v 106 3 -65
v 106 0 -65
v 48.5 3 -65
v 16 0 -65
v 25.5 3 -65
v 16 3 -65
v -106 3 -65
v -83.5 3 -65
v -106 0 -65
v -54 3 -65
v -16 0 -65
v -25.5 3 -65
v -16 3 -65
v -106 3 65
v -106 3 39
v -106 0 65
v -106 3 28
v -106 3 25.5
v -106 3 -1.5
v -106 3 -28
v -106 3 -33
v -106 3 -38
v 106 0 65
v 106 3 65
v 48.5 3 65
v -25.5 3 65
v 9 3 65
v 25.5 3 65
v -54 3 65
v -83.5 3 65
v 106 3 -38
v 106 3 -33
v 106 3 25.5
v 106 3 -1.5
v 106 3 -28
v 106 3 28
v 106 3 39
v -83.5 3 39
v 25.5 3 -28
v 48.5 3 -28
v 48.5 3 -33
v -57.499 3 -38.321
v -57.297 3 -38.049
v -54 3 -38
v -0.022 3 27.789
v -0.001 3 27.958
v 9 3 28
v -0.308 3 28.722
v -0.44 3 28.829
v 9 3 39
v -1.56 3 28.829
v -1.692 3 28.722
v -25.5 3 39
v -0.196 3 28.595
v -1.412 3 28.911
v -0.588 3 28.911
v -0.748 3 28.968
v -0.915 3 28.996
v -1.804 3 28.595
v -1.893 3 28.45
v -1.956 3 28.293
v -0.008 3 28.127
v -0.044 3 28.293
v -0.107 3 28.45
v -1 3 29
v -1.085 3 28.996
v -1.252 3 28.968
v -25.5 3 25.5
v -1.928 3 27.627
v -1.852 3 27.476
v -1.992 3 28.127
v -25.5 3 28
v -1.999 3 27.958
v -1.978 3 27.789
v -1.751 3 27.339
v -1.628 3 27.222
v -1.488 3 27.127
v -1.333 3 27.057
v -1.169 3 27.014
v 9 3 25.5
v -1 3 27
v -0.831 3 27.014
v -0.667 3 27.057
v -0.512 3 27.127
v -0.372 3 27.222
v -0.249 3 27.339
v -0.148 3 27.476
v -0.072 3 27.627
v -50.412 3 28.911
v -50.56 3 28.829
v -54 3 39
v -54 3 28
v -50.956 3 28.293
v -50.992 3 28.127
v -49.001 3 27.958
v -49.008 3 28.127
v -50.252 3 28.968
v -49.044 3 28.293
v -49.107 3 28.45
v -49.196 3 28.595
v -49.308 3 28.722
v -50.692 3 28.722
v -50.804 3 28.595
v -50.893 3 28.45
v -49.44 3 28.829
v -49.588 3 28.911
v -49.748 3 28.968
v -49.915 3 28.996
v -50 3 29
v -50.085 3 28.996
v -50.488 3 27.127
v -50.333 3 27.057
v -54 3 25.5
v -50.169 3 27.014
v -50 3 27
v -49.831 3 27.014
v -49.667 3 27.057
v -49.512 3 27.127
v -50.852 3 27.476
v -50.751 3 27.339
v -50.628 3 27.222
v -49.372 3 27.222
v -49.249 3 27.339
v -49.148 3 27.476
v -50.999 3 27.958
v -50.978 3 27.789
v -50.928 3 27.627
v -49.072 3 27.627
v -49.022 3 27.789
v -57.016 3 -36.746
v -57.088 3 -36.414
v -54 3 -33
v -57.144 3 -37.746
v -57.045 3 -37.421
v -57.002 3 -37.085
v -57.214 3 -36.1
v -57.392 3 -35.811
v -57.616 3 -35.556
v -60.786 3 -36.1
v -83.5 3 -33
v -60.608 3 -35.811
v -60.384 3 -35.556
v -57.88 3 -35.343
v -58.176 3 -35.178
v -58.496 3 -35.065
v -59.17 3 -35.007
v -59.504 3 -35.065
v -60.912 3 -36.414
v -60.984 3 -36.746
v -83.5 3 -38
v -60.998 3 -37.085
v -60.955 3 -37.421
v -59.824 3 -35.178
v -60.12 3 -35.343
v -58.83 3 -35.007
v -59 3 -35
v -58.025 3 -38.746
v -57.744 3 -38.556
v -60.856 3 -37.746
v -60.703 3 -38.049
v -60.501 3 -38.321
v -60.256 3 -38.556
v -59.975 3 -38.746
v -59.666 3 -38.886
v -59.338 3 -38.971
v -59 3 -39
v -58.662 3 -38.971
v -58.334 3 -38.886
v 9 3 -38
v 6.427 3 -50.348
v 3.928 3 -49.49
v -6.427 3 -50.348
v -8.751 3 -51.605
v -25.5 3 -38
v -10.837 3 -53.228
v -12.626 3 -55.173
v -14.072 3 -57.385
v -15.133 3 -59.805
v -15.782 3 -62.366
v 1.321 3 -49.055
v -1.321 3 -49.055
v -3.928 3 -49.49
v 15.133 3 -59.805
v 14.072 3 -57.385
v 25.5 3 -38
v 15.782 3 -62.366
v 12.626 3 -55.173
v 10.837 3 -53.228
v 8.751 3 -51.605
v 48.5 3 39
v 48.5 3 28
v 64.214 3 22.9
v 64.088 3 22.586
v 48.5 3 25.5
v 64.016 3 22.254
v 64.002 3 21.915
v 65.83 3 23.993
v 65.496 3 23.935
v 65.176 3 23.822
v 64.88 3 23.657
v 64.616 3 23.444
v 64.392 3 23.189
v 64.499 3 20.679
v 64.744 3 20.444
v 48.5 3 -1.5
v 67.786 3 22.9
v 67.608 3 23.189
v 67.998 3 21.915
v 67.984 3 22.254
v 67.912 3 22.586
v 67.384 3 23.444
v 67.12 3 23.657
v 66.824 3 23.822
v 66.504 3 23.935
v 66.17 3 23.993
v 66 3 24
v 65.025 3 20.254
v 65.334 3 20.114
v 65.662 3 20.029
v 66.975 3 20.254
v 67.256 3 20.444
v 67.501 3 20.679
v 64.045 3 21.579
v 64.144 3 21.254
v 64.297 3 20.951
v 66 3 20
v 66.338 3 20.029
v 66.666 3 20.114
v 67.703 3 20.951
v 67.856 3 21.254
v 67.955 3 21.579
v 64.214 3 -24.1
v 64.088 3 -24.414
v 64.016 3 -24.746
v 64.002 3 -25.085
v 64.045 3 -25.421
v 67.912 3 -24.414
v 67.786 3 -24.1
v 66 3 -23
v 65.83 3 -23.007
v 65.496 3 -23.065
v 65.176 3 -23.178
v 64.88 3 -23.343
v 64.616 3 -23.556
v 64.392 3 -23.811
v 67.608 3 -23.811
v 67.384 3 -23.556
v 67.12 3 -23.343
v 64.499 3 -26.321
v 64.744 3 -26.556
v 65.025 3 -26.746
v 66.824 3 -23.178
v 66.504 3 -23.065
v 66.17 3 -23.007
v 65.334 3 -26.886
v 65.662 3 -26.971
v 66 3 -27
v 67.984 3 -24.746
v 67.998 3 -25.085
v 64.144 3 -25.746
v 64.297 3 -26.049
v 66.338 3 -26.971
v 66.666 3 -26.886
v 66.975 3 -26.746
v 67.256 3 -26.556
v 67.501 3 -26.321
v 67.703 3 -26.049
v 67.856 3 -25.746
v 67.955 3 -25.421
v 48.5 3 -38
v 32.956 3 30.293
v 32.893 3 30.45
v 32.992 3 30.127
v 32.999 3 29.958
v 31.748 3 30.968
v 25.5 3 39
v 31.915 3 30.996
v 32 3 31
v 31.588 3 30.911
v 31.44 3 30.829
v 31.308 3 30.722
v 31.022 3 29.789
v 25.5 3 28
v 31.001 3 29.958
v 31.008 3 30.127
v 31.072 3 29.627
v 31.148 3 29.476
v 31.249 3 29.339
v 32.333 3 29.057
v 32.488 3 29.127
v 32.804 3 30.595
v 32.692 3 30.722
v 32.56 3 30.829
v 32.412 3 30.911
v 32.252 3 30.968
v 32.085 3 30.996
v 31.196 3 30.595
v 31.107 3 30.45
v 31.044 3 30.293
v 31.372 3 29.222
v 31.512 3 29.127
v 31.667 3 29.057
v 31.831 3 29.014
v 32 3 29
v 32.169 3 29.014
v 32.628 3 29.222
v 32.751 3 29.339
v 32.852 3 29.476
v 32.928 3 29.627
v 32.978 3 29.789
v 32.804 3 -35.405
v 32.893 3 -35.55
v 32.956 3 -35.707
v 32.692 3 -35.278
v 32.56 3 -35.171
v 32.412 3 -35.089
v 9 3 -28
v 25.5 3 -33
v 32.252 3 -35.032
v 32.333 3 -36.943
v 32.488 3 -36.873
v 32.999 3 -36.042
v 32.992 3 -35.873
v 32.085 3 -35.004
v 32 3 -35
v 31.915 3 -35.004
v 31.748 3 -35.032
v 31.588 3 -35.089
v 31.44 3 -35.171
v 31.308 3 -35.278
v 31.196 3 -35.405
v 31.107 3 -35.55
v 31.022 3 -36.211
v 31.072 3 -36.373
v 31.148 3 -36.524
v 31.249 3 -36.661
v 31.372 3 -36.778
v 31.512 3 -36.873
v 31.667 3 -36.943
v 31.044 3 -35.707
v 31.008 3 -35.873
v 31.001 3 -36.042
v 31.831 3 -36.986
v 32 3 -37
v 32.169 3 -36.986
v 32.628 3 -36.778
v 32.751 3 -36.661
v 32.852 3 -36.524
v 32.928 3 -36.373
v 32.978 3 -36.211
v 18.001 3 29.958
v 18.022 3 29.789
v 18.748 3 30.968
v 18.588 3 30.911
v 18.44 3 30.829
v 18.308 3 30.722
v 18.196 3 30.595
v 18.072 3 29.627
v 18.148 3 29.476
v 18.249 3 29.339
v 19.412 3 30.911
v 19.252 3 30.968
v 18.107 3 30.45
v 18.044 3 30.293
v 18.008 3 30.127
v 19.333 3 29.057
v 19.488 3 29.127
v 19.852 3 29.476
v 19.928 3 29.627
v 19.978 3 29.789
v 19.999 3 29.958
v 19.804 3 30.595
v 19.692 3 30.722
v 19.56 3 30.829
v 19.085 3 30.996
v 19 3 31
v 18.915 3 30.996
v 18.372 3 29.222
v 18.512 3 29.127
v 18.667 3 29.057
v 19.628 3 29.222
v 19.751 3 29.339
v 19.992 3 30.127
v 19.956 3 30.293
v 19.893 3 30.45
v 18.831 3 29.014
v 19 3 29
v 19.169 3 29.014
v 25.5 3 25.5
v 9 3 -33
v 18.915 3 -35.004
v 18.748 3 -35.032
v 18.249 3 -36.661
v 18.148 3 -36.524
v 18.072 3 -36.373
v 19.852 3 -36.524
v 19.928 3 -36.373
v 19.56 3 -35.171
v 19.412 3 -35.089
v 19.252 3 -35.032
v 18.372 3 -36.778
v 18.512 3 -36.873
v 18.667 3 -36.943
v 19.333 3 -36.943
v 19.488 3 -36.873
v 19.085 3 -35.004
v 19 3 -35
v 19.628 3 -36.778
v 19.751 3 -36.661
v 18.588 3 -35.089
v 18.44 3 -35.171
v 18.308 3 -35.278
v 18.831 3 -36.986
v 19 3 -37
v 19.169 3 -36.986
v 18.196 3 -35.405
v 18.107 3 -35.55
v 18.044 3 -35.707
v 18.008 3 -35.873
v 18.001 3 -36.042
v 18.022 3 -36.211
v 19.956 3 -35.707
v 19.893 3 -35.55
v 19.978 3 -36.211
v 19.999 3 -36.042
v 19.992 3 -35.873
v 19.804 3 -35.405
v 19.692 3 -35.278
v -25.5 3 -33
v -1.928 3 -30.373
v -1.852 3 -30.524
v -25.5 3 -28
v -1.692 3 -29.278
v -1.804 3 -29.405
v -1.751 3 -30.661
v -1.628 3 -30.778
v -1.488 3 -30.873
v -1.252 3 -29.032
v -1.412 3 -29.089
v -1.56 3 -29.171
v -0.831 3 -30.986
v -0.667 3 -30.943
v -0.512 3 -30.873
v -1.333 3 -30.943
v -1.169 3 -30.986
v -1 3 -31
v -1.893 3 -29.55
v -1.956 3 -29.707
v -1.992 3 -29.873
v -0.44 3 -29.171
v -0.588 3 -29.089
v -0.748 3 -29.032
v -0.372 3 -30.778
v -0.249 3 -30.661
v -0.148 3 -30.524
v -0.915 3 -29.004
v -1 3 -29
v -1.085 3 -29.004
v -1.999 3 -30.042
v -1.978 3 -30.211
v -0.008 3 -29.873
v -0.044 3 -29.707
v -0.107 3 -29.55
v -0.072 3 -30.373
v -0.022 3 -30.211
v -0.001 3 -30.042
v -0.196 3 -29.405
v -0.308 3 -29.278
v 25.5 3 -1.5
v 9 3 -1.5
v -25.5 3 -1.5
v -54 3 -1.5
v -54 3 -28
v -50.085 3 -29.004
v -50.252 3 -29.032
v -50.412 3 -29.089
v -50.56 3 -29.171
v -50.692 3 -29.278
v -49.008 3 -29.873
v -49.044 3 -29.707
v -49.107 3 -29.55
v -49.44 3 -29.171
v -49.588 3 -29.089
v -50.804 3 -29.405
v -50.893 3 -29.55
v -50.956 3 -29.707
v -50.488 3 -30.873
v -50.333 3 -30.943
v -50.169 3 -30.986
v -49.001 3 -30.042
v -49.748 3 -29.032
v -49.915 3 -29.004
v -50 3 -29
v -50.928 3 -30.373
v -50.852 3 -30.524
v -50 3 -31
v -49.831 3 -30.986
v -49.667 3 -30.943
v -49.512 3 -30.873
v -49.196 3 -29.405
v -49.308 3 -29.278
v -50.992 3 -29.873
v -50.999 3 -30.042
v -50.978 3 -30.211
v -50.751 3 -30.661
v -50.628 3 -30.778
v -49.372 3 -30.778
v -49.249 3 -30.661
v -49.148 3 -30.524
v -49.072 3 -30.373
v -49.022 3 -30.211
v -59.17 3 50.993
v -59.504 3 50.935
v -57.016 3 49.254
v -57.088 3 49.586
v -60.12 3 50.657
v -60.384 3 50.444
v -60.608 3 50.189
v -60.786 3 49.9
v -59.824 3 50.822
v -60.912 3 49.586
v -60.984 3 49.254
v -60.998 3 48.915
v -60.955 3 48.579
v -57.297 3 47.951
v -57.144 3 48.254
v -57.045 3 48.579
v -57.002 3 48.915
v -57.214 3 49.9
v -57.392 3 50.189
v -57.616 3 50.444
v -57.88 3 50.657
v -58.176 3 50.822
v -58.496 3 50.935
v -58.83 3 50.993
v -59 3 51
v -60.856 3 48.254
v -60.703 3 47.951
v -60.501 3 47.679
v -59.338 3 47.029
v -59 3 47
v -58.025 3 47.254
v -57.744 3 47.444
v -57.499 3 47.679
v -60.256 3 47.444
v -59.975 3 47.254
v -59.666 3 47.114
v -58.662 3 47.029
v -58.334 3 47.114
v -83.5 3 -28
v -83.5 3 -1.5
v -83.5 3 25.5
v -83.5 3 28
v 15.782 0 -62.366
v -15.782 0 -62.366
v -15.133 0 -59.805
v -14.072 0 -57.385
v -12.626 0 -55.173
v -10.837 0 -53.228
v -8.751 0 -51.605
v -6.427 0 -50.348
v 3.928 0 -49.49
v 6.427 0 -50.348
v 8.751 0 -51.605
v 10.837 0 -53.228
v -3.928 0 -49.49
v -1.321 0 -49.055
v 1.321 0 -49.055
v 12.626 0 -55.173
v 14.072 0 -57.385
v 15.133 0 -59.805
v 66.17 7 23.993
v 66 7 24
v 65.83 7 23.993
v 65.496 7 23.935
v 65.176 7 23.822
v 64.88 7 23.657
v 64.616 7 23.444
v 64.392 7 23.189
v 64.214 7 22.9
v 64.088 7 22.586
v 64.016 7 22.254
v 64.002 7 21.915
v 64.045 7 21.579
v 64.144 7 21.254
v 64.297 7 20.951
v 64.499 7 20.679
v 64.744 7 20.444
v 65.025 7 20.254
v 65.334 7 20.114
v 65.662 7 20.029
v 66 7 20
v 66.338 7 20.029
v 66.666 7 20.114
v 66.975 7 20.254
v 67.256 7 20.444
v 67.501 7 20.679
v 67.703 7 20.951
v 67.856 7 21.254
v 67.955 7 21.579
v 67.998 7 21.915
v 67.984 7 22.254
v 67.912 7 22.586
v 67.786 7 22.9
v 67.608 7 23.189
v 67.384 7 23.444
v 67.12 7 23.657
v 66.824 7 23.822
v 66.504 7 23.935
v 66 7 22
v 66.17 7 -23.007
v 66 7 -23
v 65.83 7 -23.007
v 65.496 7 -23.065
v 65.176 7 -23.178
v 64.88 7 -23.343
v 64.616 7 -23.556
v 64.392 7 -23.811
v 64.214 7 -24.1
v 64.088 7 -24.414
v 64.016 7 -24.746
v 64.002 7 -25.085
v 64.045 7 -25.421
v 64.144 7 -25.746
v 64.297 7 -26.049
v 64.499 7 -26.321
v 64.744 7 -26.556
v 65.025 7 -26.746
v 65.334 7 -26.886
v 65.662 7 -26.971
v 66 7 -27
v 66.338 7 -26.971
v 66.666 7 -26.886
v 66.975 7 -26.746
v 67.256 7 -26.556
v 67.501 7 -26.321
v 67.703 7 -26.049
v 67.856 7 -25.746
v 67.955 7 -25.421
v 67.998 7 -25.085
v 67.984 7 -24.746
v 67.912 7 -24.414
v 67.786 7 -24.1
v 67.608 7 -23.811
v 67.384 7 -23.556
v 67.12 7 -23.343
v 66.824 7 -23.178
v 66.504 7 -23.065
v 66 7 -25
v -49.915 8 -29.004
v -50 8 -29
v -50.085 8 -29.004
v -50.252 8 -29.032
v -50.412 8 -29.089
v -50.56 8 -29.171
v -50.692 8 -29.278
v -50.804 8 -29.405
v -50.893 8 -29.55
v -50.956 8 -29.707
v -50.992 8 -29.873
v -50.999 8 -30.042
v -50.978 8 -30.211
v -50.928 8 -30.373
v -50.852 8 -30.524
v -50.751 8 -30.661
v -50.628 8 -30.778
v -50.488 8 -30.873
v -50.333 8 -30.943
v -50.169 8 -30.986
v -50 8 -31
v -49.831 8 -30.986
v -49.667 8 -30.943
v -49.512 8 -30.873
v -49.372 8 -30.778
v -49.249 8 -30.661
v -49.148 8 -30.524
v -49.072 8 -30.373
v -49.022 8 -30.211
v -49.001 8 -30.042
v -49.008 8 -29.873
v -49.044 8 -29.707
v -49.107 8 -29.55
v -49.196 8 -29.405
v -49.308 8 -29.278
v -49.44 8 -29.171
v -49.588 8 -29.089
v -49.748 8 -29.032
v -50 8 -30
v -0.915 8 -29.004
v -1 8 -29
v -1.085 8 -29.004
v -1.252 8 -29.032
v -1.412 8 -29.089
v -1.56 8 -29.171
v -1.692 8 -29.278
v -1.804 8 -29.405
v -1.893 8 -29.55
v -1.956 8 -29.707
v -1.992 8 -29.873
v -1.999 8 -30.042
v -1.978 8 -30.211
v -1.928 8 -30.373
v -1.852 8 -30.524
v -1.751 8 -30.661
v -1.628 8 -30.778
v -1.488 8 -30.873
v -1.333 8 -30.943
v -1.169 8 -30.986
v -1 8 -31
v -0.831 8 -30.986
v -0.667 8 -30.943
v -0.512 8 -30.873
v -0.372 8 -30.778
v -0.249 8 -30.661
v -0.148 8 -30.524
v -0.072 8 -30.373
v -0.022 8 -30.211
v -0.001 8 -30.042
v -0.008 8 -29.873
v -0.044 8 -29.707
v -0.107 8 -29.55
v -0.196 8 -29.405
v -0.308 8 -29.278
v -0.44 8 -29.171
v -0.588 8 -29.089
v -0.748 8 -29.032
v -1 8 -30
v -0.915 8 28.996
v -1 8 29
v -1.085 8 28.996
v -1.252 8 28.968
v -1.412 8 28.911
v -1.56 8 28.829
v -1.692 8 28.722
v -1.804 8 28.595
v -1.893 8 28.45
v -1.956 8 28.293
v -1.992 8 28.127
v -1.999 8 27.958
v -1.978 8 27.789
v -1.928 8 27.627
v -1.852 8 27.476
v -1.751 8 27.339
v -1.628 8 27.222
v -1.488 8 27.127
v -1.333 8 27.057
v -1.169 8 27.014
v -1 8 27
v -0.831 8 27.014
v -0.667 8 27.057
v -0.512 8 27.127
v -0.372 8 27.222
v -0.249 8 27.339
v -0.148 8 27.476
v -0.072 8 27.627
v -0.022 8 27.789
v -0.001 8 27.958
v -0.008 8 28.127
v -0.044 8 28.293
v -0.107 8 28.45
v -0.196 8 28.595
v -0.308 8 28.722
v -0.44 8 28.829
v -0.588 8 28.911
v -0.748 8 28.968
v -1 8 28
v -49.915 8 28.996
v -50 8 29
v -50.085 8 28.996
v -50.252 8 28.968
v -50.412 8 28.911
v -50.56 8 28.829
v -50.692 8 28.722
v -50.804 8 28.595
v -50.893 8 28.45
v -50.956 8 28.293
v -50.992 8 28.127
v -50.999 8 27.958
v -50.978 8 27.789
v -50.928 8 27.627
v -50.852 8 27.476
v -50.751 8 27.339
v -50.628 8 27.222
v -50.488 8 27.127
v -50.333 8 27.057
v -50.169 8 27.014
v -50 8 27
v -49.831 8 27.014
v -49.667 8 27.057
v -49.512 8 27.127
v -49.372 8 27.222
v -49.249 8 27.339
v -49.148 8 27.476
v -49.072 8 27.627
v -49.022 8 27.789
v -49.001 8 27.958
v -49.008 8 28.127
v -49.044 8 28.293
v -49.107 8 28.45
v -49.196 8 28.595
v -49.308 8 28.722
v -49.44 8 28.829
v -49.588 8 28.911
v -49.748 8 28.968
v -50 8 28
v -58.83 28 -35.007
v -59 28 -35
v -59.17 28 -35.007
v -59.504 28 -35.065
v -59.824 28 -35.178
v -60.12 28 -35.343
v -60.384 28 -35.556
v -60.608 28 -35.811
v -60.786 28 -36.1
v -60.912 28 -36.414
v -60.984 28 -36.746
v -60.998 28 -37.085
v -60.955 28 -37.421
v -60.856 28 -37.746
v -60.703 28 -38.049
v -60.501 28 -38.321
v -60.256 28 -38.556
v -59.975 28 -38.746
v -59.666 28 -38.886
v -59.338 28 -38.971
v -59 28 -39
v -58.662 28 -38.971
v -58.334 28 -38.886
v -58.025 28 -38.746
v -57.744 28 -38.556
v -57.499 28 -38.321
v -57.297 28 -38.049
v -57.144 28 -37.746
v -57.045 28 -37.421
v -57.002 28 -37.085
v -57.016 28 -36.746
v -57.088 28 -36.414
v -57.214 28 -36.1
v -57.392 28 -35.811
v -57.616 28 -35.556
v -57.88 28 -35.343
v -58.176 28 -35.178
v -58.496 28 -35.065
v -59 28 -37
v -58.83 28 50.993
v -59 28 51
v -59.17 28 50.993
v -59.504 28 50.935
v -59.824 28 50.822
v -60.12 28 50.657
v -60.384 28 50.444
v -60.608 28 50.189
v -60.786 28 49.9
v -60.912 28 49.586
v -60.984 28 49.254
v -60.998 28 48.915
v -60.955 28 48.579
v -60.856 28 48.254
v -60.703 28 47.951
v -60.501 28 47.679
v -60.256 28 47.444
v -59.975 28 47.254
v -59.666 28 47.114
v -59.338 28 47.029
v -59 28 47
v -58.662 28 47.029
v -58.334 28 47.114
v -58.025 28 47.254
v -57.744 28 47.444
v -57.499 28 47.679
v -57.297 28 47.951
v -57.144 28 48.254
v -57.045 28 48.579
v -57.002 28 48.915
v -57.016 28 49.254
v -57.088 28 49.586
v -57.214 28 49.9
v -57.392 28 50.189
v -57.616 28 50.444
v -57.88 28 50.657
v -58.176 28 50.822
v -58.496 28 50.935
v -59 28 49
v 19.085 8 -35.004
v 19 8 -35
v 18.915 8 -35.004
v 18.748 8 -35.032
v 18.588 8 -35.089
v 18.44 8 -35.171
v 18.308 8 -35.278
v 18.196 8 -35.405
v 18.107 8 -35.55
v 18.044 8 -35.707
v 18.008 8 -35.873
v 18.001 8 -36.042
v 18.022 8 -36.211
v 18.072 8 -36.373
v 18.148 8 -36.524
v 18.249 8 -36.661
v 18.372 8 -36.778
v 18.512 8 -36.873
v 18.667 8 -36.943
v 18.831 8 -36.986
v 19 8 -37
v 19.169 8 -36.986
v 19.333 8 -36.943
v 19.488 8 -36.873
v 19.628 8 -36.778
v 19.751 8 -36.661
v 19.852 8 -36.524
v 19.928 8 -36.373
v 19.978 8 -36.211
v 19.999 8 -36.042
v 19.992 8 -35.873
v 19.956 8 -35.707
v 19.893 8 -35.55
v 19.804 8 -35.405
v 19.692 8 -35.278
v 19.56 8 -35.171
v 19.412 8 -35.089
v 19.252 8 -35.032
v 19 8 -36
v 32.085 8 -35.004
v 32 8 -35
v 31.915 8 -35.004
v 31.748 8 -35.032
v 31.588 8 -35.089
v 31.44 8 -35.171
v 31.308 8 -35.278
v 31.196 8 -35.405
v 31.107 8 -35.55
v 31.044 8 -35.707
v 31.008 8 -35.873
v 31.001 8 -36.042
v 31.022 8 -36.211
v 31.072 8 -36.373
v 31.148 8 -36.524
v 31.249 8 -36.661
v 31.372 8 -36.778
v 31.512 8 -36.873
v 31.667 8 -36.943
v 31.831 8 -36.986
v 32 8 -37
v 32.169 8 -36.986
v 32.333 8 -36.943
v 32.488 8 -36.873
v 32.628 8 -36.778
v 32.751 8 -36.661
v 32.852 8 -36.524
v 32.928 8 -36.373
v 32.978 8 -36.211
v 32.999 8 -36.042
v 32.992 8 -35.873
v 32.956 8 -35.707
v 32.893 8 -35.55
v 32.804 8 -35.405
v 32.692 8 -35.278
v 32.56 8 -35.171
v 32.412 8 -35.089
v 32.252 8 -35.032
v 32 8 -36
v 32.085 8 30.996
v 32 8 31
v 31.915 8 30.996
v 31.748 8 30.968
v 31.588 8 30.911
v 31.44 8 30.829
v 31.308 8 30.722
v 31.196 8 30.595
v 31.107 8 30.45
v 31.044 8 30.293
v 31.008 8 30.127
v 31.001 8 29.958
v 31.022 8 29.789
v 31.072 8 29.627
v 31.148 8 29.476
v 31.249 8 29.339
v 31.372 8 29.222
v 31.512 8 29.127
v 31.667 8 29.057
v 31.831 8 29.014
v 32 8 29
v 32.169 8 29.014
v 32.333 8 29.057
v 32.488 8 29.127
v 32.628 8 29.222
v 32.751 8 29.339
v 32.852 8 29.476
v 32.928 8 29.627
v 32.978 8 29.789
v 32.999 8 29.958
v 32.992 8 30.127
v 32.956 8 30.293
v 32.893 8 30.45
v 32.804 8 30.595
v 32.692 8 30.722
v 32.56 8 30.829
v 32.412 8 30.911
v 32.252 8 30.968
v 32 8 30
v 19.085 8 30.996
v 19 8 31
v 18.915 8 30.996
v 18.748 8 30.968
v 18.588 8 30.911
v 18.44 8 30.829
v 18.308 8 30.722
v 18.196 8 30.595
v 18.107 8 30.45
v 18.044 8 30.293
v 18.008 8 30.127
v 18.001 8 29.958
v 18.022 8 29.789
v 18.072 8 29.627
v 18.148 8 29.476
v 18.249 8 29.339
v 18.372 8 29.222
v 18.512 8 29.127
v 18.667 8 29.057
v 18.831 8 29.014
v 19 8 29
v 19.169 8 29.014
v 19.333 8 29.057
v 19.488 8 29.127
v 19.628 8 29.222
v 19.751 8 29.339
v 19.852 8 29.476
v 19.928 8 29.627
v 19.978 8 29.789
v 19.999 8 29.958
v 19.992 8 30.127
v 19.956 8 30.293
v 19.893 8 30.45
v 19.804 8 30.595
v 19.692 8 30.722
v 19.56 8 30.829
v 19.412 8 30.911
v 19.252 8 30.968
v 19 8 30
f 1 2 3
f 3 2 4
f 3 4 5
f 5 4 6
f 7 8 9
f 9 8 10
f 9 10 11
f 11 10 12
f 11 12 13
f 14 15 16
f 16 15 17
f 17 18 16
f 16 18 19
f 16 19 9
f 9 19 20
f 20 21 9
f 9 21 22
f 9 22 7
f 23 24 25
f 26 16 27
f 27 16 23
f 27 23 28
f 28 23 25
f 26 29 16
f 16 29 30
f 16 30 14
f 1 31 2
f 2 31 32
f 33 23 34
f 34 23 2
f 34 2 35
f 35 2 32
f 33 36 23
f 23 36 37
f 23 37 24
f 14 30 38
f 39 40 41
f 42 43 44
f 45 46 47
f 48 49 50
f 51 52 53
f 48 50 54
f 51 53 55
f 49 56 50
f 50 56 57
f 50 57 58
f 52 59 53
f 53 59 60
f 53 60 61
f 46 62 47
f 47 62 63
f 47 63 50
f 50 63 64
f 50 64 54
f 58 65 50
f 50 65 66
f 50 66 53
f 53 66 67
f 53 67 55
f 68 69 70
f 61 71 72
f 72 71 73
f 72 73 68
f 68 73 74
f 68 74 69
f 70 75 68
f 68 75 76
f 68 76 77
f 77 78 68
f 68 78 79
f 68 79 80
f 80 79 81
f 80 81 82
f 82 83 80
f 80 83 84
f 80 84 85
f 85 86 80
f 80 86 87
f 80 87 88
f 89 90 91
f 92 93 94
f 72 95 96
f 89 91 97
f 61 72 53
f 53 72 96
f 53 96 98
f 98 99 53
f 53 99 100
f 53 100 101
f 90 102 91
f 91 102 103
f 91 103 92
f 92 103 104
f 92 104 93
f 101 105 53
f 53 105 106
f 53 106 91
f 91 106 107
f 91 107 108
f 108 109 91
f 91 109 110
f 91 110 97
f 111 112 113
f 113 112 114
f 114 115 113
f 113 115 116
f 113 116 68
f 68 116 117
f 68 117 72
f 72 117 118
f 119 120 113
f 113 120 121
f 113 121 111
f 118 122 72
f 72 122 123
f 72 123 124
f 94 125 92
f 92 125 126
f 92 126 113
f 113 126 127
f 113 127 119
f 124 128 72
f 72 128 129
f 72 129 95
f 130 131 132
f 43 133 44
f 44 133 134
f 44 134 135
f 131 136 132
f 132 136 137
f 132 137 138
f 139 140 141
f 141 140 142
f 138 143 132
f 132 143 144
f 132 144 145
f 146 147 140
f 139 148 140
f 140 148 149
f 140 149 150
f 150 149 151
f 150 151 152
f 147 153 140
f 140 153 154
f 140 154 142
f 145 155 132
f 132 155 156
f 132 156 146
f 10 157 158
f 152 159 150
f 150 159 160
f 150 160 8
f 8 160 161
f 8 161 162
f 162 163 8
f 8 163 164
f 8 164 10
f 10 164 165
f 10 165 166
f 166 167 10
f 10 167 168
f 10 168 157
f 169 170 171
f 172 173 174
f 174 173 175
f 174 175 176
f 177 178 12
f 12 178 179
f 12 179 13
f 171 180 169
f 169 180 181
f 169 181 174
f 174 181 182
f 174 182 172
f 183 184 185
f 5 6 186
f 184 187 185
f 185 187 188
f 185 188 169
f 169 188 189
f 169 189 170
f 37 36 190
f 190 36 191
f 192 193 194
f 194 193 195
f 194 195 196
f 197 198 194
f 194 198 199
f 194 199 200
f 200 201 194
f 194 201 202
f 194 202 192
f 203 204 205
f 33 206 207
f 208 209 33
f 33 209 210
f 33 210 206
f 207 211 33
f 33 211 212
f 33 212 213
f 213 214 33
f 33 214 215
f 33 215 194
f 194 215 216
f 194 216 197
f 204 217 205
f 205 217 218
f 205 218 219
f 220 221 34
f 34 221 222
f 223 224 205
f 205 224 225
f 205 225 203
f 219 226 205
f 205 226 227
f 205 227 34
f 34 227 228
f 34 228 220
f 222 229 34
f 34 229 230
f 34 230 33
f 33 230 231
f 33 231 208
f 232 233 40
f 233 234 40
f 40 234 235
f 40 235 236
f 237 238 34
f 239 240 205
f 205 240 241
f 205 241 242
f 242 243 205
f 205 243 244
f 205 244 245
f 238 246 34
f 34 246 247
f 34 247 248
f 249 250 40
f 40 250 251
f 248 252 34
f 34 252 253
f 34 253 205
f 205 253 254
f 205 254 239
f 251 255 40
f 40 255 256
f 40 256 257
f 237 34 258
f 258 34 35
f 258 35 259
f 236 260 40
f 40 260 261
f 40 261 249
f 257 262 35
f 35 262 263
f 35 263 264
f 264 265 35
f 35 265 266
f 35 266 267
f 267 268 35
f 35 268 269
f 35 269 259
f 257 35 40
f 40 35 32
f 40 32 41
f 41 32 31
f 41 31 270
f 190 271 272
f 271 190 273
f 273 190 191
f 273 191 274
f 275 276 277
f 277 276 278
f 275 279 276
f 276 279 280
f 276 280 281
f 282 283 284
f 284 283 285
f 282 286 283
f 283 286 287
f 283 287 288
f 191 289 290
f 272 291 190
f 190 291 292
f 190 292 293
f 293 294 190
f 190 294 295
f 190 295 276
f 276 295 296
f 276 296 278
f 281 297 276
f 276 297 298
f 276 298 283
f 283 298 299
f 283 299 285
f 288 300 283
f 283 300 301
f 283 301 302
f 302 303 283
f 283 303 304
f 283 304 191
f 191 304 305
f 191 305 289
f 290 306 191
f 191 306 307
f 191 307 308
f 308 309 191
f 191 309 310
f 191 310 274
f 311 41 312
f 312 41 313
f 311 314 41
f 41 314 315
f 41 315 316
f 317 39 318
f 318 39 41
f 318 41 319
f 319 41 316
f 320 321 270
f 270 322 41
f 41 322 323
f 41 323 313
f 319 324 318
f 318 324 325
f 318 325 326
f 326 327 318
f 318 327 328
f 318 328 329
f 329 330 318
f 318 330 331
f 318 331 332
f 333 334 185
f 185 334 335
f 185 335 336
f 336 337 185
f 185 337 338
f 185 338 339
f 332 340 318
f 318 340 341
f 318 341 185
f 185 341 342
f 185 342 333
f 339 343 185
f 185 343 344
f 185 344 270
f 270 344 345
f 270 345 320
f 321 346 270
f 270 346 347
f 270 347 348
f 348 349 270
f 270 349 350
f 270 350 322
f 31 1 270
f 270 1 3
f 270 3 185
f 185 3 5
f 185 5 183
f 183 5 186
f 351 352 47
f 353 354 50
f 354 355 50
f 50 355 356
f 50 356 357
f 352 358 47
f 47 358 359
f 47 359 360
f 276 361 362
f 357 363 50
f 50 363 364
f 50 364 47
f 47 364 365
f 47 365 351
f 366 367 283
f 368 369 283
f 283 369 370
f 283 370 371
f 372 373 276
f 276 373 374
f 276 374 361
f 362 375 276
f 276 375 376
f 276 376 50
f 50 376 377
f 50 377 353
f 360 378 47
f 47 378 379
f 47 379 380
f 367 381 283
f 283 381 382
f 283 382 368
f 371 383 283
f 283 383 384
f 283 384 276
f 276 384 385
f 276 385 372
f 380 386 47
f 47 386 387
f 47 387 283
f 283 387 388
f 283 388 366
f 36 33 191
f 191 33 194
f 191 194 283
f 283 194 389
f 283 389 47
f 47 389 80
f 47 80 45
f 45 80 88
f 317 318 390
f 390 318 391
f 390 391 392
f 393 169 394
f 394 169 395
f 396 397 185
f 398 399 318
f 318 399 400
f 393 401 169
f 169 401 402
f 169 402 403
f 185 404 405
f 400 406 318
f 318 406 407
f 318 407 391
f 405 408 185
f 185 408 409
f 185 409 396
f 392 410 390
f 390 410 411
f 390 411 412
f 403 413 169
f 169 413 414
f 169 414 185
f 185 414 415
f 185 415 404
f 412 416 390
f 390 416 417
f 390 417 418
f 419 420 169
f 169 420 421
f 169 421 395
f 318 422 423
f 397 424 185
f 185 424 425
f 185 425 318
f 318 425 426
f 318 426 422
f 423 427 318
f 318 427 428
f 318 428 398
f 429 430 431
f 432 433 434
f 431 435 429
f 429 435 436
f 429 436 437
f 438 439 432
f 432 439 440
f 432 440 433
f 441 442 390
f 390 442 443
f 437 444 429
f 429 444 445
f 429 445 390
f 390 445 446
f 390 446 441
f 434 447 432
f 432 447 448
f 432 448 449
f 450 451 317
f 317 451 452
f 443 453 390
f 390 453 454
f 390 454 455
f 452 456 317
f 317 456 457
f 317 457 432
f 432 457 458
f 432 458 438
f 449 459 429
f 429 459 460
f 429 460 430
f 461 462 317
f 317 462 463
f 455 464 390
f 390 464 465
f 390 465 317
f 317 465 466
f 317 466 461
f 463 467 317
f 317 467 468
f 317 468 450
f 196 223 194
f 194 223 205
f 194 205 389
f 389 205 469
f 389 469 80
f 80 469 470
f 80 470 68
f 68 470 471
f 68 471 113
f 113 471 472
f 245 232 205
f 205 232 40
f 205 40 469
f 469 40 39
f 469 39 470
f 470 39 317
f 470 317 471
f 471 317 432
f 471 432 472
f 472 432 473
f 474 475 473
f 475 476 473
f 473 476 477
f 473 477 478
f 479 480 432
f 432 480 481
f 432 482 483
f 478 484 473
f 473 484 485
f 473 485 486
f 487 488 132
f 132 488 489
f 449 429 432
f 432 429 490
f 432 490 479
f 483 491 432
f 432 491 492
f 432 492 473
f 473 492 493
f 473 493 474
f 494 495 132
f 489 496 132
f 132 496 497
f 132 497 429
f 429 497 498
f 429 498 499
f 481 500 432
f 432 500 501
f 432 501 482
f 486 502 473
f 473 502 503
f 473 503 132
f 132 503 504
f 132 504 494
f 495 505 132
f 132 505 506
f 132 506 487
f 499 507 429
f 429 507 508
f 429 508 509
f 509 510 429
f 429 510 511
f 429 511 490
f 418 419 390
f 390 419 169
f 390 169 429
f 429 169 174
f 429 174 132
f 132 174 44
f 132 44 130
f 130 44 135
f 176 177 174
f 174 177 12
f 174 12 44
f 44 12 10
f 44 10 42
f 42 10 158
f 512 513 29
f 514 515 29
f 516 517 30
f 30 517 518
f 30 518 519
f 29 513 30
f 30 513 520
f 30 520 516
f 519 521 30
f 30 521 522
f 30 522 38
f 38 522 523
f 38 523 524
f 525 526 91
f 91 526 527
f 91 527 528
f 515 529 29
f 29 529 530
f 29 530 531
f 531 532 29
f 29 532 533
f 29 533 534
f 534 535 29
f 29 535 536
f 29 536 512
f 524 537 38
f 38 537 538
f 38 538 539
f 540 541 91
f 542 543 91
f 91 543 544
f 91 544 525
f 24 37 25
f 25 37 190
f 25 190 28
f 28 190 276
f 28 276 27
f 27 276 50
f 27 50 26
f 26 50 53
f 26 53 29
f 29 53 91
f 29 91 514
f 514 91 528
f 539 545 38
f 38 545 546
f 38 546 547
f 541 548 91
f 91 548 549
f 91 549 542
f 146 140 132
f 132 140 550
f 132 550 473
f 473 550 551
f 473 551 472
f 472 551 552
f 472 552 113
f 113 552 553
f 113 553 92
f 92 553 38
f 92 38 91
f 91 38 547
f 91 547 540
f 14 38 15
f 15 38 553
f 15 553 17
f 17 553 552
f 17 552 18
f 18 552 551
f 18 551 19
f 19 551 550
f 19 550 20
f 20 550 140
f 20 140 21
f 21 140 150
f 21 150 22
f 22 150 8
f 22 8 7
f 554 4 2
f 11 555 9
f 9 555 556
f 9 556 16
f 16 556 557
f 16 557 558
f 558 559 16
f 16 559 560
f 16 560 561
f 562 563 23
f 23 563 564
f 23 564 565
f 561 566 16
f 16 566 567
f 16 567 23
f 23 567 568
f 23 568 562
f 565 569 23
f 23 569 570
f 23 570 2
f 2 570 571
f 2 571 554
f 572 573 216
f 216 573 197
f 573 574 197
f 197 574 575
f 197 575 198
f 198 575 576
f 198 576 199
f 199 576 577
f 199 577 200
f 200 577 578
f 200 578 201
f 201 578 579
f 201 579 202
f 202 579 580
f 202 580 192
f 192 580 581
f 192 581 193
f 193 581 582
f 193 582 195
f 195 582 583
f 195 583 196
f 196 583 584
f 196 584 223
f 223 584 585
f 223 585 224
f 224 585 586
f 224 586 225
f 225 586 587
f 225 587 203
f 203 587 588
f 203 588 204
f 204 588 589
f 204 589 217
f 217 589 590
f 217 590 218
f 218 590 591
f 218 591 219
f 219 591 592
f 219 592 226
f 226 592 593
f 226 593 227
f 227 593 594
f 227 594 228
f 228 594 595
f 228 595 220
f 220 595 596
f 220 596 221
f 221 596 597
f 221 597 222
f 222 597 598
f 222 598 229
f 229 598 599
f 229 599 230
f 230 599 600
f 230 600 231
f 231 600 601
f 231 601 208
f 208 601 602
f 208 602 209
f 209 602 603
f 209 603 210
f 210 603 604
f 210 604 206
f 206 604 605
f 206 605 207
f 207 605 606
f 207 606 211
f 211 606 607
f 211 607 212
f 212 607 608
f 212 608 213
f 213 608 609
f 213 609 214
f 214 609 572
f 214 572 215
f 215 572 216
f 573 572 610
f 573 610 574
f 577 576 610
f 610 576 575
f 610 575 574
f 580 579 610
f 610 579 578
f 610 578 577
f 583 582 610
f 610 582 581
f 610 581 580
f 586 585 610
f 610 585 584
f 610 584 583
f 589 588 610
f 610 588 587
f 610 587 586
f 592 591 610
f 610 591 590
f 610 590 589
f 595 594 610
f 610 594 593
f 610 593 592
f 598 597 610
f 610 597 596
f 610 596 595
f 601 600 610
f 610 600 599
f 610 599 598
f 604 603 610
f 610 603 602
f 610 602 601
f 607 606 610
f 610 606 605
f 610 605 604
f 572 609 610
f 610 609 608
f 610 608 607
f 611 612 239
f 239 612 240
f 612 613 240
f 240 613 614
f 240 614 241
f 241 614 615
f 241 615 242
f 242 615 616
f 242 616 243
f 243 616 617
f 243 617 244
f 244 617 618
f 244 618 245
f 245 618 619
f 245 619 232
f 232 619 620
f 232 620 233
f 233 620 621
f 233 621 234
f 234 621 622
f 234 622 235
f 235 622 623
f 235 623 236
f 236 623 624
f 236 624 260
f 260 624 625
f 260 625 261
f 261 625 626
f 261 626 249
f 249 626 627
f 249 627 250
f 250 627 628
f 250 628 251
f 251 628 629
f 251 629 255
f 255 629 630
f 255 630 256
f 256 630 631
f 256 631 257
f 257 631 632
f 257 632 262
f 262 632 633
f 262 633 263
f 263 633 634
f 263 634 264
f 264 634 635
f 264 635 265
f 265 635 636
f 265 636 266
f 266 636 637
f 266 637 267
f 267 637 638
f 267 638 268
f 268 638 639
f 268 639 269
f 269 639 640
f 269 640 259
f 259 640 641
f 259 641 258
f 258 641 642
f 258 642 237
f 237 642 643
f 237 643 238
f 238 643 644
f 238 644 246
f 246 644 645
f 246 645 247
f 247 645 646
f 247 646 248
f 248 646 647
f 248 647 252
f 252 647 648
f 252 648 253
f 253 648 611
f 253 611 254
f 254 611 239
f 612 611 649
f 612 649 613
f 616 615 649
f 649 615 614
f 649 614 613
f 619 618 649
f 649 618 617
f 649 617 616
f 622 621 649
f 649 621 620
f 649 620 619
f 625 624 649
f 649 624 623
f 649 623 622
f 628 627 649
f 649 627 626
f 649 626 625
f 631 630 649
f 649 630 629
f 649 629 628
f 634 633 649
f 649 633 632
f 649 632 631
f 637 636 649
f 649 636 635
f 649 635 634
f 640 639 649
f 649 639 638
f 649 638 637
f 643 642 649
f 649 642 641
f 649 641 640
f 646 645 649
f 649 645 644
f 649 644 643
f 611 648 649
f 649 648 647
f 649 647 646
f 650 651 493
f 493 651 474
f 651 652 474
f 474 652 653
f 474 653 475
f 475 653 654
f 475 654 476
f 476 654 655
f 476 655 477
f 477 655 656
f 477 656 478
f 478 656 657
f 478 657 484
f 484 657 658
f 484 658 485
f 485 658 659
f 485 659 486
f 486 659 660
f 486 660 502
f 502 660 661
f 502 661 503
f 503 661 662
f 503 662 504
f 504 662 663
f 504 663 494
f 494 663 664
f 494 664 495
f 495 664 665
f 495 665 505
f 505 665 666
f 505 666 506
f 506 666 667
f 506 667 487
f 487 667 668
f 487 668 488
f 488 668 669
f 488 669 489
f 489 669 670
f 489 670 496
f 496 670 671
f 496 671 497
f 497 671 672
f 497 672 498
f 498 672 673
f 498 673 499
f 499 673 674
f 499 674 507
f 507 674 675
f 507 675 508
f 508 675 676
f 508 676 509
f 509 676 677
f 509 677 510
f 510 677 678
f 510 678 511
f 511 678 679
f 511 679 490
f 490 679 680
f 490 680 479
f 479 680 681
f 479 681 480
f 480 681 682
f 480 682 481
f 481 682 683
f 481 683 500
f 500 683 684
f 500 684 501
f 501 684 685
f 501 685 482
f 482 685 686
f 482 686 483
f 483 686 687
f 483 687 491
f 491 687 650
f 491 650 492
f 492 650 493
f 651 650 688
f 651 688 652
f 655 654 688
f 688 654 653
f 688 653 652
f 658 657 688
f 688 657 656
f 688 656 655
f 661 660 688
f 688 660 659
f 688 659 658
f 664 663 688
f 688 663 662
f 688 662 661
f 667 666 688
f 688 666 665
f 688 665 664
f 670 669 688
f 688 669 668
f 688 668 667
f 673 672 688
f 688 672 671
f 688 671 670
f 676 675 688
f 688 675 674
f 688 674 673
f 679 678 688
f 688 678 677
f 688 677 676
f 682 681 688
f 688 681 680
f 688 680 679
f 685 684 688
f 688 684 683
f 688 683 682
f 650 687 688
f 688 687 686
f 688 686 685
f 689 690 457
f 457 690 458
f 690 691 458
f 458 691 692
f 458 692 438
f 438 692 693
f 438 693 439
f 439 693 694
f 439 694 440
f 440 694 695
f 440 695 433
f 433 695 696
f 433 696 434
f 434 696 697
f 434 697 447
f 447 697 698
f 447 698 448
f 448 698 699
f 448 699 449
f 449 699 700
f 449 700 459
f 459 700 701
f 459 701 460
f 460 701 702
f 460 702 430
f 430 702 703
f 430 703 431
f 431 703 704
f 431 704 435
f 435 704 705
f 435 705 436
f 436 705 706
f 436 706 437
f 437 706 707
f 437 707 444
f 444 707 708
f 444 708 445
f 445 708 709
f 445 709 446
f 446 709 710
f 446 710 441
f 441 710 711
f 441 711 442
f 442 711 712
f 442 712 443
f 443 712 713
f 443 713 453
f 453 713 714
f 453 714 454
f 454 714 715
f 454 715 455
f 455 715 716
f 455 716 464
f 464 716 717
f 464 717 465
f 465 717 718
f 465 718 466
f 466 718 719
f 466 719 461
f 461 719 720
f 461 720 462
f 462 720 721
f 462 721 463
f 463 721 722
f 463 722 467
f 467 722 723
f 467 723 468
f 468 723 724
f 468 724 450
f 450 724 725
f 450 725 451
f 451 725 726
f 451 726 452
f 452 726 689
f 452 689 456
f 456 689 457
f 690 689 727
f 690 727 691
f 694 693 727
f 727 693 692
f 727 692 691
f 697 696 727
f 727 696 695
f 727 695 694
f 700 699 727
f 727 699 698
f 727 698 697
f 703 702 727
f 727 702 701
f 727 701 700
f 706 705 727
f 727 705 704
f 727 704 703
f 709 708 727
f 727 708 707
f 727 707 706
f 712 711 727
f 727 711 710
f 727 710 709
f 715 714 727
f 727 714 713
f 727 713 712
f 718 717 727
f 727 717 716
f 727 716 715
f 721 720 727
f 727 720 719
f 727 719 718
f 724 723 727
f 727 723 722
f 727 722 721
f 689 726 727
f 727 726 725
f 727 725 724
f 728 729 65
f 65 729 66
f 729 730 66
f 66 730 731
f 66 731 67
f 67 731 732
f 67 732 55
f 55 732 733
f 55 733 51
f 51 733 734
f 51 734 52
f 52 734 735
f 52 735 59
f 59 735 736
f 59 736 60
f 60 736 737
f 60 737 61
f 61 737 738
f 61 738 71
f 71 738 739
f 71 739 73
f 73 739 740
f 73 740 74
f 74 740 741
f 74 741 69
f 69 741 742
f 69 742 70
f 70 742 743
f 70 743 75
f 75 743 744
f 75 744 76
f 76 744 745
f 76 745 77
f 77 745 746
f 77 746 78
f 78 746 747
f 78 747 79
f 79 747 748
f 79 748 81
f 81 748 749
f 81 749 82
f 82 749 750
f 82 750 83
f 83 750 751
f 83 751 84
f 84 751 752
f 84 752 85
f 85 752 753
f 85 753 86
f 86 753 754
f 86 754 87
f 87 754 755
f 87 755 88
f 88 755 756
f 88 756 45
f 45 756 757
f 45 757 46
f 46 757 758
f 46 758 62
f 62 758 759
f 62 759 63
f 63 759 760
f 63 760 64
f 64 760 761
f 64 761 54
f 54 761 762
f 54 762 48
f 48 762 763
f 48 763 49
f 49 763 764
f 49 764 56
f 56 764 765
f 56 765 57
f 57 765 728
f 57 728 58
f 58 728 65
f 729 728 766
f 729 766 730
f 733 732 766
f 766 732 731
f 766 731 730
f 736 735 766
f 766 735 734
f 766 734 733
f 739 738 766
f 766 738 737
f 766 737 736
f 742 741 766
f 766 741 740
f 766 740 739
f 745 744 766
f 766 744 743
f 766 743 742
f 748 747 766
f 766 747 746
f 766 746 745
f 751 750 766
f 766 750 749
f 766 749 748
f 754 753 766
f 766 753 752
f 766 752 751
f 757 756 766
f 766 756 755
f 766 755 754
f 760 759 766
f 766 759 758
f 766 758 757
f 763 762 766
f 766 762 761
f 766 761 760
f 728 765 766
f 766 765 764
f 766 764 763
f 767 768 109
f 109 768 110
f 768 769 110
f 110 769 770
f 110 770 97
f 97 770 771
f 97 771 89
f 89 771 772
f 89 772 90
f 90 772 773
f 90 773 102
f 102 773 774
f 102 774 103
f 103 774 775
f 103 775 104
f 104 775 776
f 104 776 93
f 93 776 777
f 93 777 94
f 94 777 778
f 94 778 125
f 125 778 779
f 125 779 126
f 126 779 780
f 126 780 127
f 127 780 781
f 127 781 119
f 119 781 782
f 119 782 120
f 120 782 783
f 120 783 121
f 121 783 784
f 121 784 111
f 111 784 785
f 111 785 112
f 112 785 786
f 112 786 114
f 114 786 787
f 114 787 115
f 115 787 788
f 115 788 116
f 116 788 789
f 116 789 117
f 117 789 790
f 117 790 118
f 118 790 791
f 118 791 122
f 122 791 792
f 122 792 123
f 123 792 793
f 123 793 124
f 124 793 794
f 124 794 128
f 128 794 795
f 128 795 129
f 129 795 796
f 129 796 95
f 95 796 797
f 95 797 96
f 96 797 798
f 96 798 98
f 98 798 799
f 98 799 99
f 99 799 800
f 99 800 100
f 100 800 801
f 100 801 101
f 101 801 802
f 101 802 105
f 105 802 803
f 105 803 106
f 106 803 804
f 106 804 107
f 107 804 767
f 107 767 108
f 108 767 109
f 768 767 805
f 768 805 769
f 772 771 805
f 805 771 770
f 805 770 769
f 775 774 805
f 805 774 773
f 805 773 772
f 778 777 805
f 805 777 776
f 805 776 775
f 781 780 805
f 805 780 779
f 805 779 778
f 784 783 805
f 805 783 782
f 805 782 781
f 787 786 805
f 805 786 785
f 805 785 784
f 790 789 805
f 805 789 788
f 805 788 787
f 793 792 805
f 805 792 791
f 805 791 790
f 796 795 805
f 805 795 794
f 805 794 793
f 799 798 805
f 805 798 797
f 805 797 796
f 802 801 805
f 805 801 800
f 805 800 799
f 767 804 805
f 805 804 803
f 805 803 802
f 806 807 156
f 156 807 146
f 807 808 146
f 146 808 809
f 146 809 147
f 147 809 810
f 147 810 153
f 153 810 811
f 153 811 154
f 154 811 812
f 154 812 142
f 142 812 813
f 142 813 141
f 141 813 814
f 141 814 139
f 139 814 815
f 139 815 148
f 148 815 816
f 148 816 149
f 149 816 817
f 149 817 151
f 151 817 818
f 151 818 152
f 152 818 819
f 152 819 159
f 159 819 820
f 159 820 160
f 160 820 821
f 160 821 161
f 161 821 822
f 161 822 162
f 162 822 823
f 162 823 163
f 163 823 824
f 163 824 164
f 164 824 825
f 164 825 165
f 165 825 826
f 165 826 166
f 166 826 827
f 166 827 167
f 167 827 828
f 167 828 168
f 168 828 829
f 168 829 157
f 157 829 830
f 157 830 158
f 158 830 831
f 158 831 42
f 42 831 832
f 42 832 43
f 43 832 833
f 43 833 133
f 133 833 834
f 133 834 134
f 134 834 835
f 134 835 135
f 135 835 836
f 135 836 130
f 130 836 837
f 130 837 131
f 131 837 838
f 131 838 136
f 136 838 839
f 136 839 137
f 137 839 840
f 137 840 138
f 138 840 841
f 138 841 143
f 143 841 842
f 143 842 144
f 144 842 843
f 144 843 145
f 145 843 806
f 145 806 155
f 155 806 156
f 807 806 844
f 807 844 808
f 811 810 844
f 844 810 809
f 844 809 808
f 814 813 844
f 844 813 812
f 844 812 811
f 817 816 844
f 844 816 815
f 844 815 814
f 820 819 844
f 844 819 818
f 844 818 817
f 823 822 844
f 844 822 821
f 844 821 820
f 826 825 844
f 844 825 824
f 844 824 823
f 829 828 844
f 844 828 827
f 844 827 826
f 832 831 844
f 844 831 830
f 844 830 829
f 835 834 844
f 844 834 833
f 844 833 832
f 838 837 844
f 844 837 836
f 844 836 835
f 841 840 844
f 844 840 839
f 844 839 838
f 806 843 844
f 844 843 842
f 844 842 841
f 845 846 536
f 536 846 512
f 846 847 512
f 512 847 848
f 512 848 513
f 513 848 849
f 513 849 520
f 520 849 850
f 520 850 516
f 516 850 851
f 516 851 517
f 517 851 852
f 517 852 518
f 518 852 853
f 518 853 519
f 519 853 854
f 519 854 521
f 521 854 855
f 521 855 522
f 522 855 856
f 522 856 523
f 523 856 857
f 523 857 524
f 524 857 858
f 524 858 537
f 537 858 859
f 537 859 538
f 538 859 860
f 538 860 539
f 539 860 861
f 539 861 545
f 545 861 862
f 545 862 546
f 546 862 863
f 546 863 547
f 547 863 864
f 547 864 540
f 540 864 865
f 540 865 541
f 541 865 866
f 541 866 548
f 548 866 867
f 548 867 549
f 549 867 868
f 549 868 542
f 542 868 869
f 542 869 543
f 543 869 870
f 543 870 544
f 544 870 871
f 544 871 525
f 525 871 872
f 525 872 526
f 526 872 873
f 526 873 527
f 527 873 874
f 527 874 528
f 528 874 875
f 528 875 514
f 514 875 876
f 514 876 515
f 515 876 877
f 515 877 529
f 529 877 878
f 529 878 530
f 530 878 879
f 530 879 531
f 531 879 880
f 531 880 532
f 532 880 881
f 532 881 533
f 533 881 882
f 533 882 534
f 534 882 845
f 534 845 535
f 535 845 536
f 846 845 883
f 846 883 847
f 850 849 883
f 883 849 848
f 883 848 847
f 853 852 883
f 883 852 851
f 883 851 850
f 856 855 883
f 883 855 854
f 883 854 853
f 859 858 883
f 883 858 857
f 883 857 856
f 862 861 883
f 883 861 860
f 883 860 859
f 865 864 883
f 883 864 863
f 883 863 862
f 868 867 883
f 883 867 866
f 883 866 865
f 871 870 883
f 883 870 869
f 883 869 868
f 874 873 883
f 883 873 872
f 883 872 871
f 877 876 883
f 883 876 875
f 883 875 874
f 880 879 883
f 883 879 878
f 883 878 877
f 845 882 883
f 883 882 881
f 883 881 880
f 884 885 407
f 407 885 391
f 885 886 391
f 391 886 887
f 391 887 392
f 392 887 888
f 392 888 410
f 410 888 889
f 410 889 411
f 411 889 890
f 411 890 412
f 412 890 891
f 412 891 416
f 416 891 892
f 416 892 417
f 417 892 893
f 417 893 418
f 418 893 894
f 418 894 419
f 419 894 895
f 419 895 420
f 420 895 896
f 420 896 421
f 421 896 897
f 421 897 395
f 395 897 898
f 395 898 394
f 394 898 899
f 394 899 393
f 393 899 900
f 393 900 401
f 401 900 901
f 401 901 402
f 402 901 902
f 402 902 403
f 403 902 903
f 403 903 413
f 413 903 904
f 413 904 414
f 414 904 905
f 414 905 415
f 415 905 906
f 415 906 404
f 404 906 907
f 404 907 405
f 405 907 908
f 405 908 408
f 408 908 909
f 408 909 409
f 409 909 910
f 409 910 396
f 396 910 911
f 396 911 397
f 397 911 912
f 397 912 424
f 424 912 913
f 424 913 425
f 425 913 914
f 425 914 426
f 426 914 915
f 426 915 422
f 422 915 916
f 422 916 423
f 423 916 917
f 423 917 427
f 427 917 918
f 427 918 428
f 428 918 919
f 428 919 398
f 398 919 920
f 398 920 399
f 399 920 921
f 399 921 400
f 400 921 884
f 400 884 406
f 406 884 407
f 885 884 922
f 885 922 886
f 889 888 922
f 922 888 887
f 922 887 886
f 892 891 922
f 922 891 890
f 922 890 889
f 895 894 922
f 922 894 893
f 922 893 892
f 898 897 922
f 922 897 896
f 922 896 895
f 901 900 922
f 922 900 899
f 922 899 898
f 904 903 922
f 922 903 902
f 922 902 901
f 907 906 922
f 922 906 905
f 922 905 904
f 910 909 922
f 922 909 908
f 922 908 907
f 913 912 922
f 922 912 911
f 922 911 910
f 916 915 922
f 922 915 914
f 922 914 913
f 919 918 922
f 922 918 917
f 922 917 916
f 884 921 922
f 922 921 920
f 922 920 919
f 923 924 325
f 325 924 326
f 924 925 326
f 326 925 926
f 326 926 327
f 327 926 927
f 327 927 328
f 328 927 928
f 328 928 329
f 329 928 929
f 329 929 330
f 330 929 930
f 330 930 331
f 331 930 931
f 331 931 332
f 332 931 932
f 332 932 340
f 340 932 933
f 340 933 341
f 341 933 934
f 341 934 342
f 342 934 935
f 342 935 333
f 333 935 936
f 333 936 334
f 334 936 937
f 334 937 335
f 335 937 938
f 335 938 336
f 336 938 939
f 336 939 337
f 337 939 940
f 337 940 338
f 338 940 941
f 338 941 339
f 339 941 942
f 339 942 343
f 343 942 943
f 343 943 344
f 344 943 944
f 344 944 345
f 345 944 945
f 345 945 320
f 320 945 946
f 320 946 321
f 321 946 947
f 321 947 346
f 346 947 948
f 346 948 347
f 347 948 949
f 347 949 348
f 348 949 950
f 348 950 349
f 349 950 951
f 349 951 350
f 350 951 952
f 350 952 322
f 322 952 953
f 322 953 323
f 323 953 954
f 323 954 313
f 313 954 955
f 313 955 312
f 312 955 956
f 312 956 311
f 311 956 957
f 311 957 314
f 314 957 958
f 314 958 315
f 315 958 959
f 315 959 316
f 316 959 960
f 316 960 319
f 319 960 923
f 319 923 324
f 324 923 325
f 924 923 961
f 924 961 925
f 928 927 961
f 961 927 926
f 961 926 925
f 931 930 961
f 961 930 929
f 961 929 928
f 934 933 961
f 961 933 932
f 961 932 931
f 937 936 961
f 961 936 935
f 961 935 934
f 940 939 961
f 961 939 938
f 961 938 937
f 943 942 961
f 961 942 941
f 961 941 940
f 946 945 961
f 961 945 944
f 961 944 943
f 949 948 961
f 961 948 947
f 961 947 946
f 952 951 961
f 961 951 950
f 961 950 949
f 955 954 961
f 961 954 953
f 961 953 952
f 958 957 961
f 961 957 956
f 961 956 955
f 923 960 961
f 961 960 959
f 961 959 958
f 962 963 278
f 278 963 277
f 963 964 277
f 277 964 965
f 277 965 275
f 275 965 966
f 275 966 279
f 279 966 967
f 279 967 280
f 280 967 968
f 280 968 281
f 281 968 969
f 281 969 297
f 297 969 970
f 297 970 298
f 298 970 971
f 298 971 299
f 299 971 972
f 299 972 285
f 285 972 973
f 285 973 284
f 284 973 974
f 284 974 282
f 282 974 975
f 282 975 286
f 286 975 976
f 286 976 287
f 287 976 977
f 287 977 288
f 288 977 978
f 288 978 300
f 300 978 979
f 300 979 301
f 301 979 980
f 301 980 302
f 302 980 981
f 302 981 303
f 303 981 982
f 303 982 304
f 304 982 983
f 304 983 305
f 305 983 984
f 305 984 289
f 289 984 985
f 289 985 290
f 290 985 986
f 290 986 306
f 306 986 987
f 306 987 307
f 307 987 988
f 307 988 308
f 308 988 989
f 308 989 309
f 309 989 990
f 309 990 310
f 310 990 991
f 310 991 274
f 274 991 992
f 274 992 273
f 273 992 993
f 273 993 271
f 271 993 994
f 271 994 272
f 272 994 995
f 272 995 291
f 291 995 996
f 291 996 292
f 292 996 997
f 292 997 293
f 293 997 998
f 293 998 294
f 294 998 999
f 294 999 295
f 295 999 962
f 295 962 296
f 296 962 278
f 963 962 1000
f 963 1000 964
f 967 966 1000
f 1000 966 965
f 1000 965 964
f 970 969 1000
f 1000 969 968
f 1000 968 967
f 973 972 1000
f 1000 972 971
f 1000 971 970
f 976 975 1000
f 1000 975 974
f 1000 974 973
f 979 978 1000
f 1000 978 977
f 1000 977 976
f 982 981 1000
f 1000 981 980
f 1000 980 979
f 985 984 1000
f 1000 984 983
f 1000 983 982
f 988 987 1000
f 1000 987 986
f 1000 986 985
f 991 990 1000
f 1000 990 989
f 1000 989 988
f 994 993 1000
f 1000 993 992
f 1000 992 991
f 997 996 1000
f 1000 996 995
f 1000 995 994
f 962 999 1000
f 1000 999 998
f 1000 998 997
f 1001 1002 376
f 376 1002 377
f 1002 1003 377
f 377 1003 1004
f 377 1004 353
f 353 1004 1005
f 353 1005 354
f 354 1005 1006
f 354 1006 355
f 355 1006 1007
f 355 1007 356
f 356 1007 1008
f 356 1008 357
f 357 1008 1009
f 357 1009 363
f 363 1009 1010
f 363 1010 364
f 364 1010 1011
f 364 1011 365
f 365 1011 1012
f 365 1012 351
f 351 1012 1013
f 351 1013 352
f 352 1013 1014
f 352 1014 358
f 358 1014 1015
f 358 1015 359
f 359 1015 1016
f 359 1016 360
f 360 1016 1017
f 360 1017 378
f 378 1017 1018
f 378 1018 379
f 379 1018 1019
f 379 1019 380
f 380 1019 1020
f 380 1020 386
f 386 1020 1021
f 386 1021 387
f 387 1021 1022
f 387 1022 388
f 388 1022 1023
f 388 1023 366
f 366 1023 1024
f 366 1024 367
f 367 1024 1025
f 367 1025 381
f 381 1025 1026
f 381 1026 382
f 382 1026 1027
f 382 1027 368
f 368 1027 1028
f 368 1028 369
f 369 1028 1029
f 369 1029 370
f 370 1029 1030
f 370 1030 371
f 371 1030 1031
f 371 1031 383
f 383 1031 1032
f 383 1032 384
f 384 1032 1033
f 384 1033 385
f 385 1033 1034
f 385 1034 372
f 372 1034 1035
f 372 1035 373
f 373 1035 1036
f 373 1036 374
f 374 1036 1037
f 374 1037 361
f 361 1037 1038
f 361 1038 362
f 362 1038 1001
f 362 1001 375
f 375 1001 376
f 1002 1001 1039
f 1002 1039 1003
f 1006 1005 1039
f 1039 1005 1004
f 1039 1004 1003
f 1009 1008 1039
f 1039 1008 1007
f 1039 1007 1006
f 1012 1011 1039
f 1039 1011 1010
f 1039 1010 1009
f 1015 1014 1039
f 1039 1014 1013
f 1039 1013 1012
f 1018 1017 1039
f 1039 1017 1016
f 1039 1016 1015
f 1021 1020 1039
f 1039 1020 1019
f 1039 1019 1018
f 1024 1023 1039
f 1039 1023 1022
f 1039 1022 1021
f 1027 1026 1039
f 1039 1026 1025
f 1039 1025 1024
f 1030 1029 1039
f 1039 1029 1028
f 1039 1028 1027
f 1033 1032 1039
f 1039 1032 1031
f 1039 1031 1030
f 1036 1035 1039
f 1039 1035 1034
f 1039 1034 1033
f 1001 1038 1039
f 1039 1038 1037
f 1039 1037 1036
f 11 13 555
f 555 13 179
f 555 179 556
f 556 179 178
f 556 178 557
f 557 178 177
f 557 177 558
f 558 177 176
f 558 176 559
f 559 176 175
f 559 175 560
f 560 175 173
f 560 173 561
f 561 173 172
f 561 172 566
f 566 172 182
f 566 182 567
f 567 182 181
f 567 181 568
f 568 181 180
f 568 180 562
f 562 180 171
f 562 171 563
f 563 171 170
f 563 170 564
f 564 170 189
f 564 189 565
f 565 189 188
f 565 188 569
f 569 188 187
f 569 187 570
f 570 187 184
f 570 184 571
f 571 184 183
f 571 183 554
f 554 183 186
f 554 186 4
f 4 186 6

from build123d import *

# Parameters (mm, degrees)
SKETCH3_W           = 212
SKETCH3_H           = 130
BOSS_EXTRUDE1_DEPTH = 3
SKETCH4_R           = 2
BOSS_EXTRUDE2_DEPTH = 4
SKETCH5_R           = 1
BOSS_EXTRUDE3_DEPTH = 5
SKETCH6_R           = 2
BOSS_EXTRUDE4_DEPTH = 25
SKETCH7_R           = 1
BOSS_EXTRUDE5_DEPTH = 5
SKETCH8_R           = 16
CUT_EXTRUDE1_DEPTH  = 10


with BuildPart() as part:
    # Sketch3 → Boss-Extrude1 (new body)
    with BuildSketch(Plane(origin=(0, 0, 0), x_dir=(1, 0, 0), z_dir=(0, 1, 0))):
        Rectangle(SKETCH3_W, SKETCH3_H)
    extrude(amount=BOSS_EXTRUDE1_DEPTH)

    # Sketch4 → Boss-Extrude2 (add)
    with BuildSketch(Plane(origin=(0, 3, 0), x_dir=(1, 0, 0), z_dir=(0, 1, 0))):
        with Locations(Location((66, 25, 0), (0, 0, 270))):
            Circle(SKETCH4_R)
        with Locations(Location((66, -22, 0), (0, 0, 270))):
            Circle(SKETCH4_R)
    extrude(amount=BOSS_EXTRUDE2_DEPTH)

    # Sketch5 → Boss-Extrude3 (add)
    with BuildSketch(Plane(origin=(0, 3, 0), x_dir=(1, 0, 0), z_dir=(0, 1, 0))):
        with Locations(Location((-50, 30, 0), (0, 0, 270))):
            Circle(SKETCH5_R)
        with Locations(Location((-1, 30, 0), (0, 0, 270))):
            Circle(SKETCH5_R)
        with Locations(Location((-1, -28, 0), (0, 0, 270))):
            Circle(SKETCH5_R)
        with Locations(Location((-50, -28, 0), (0, 0, 270))):
            Circle(SKETCH5_R)
    extrude(amount=BOSS_EXTRUDE3_DEPTH)

    # Sketch6 → Boss-Extrude4 (add)
    with BuildSketch(Plane(origin=(0, 3, 0), x_dir=(1, 0, 0), z_dir=(0, 1, 0))):
        with Locations(Location((-59, -49, 0), (0, 0, 270))):
            Circle(SKETCH6_R)
        with Locations(Location((-59, 37, 0), (0, 0, 270))):
            Circle(SKETCH6_R)
    extrude(amount=BOSS_EXTRUDE4_DEPTH)

    # Sketch7 → Boss-Extrude5 (add)
    with BuildSketch(Plane(origin=(0, 3, 0), x_dir=(1, 0, 0), z_dir=(0, 1, 0))):
        with Locations(Location((19, 36, 0), (0, 0, 270))):
            Circle(SKETCH7_R)
        with Locations(Location((32, 36, 0), (0, 0, 270))):
            Circle(SKETCH7_R)
        with Locations(Location((32, -30, 0), (0, 0, 270))):
            Circle(SKETCH7_R)
        with Locations(Location((19, -30, 0), (0, 0, 270))):
            Circle(SKETCH7_R)
    extrude(amount=BOSS_EXTRUDE5_DEPTH)

    # Sketch8 → Cut-Extrude1 (cut)
    with BuildSketch(Plane(origin=(0, 3, 0), x_dir=(1, 0, 0), z_dir=(0, 1, 0))):
        with Locations((0, 65)):
            Circle(SKETCH8_R)
    extrude(amount=-CUT_EXTRUDE1_DEPTH, mode=Mode.SUBTRACT)


solid = part.part
